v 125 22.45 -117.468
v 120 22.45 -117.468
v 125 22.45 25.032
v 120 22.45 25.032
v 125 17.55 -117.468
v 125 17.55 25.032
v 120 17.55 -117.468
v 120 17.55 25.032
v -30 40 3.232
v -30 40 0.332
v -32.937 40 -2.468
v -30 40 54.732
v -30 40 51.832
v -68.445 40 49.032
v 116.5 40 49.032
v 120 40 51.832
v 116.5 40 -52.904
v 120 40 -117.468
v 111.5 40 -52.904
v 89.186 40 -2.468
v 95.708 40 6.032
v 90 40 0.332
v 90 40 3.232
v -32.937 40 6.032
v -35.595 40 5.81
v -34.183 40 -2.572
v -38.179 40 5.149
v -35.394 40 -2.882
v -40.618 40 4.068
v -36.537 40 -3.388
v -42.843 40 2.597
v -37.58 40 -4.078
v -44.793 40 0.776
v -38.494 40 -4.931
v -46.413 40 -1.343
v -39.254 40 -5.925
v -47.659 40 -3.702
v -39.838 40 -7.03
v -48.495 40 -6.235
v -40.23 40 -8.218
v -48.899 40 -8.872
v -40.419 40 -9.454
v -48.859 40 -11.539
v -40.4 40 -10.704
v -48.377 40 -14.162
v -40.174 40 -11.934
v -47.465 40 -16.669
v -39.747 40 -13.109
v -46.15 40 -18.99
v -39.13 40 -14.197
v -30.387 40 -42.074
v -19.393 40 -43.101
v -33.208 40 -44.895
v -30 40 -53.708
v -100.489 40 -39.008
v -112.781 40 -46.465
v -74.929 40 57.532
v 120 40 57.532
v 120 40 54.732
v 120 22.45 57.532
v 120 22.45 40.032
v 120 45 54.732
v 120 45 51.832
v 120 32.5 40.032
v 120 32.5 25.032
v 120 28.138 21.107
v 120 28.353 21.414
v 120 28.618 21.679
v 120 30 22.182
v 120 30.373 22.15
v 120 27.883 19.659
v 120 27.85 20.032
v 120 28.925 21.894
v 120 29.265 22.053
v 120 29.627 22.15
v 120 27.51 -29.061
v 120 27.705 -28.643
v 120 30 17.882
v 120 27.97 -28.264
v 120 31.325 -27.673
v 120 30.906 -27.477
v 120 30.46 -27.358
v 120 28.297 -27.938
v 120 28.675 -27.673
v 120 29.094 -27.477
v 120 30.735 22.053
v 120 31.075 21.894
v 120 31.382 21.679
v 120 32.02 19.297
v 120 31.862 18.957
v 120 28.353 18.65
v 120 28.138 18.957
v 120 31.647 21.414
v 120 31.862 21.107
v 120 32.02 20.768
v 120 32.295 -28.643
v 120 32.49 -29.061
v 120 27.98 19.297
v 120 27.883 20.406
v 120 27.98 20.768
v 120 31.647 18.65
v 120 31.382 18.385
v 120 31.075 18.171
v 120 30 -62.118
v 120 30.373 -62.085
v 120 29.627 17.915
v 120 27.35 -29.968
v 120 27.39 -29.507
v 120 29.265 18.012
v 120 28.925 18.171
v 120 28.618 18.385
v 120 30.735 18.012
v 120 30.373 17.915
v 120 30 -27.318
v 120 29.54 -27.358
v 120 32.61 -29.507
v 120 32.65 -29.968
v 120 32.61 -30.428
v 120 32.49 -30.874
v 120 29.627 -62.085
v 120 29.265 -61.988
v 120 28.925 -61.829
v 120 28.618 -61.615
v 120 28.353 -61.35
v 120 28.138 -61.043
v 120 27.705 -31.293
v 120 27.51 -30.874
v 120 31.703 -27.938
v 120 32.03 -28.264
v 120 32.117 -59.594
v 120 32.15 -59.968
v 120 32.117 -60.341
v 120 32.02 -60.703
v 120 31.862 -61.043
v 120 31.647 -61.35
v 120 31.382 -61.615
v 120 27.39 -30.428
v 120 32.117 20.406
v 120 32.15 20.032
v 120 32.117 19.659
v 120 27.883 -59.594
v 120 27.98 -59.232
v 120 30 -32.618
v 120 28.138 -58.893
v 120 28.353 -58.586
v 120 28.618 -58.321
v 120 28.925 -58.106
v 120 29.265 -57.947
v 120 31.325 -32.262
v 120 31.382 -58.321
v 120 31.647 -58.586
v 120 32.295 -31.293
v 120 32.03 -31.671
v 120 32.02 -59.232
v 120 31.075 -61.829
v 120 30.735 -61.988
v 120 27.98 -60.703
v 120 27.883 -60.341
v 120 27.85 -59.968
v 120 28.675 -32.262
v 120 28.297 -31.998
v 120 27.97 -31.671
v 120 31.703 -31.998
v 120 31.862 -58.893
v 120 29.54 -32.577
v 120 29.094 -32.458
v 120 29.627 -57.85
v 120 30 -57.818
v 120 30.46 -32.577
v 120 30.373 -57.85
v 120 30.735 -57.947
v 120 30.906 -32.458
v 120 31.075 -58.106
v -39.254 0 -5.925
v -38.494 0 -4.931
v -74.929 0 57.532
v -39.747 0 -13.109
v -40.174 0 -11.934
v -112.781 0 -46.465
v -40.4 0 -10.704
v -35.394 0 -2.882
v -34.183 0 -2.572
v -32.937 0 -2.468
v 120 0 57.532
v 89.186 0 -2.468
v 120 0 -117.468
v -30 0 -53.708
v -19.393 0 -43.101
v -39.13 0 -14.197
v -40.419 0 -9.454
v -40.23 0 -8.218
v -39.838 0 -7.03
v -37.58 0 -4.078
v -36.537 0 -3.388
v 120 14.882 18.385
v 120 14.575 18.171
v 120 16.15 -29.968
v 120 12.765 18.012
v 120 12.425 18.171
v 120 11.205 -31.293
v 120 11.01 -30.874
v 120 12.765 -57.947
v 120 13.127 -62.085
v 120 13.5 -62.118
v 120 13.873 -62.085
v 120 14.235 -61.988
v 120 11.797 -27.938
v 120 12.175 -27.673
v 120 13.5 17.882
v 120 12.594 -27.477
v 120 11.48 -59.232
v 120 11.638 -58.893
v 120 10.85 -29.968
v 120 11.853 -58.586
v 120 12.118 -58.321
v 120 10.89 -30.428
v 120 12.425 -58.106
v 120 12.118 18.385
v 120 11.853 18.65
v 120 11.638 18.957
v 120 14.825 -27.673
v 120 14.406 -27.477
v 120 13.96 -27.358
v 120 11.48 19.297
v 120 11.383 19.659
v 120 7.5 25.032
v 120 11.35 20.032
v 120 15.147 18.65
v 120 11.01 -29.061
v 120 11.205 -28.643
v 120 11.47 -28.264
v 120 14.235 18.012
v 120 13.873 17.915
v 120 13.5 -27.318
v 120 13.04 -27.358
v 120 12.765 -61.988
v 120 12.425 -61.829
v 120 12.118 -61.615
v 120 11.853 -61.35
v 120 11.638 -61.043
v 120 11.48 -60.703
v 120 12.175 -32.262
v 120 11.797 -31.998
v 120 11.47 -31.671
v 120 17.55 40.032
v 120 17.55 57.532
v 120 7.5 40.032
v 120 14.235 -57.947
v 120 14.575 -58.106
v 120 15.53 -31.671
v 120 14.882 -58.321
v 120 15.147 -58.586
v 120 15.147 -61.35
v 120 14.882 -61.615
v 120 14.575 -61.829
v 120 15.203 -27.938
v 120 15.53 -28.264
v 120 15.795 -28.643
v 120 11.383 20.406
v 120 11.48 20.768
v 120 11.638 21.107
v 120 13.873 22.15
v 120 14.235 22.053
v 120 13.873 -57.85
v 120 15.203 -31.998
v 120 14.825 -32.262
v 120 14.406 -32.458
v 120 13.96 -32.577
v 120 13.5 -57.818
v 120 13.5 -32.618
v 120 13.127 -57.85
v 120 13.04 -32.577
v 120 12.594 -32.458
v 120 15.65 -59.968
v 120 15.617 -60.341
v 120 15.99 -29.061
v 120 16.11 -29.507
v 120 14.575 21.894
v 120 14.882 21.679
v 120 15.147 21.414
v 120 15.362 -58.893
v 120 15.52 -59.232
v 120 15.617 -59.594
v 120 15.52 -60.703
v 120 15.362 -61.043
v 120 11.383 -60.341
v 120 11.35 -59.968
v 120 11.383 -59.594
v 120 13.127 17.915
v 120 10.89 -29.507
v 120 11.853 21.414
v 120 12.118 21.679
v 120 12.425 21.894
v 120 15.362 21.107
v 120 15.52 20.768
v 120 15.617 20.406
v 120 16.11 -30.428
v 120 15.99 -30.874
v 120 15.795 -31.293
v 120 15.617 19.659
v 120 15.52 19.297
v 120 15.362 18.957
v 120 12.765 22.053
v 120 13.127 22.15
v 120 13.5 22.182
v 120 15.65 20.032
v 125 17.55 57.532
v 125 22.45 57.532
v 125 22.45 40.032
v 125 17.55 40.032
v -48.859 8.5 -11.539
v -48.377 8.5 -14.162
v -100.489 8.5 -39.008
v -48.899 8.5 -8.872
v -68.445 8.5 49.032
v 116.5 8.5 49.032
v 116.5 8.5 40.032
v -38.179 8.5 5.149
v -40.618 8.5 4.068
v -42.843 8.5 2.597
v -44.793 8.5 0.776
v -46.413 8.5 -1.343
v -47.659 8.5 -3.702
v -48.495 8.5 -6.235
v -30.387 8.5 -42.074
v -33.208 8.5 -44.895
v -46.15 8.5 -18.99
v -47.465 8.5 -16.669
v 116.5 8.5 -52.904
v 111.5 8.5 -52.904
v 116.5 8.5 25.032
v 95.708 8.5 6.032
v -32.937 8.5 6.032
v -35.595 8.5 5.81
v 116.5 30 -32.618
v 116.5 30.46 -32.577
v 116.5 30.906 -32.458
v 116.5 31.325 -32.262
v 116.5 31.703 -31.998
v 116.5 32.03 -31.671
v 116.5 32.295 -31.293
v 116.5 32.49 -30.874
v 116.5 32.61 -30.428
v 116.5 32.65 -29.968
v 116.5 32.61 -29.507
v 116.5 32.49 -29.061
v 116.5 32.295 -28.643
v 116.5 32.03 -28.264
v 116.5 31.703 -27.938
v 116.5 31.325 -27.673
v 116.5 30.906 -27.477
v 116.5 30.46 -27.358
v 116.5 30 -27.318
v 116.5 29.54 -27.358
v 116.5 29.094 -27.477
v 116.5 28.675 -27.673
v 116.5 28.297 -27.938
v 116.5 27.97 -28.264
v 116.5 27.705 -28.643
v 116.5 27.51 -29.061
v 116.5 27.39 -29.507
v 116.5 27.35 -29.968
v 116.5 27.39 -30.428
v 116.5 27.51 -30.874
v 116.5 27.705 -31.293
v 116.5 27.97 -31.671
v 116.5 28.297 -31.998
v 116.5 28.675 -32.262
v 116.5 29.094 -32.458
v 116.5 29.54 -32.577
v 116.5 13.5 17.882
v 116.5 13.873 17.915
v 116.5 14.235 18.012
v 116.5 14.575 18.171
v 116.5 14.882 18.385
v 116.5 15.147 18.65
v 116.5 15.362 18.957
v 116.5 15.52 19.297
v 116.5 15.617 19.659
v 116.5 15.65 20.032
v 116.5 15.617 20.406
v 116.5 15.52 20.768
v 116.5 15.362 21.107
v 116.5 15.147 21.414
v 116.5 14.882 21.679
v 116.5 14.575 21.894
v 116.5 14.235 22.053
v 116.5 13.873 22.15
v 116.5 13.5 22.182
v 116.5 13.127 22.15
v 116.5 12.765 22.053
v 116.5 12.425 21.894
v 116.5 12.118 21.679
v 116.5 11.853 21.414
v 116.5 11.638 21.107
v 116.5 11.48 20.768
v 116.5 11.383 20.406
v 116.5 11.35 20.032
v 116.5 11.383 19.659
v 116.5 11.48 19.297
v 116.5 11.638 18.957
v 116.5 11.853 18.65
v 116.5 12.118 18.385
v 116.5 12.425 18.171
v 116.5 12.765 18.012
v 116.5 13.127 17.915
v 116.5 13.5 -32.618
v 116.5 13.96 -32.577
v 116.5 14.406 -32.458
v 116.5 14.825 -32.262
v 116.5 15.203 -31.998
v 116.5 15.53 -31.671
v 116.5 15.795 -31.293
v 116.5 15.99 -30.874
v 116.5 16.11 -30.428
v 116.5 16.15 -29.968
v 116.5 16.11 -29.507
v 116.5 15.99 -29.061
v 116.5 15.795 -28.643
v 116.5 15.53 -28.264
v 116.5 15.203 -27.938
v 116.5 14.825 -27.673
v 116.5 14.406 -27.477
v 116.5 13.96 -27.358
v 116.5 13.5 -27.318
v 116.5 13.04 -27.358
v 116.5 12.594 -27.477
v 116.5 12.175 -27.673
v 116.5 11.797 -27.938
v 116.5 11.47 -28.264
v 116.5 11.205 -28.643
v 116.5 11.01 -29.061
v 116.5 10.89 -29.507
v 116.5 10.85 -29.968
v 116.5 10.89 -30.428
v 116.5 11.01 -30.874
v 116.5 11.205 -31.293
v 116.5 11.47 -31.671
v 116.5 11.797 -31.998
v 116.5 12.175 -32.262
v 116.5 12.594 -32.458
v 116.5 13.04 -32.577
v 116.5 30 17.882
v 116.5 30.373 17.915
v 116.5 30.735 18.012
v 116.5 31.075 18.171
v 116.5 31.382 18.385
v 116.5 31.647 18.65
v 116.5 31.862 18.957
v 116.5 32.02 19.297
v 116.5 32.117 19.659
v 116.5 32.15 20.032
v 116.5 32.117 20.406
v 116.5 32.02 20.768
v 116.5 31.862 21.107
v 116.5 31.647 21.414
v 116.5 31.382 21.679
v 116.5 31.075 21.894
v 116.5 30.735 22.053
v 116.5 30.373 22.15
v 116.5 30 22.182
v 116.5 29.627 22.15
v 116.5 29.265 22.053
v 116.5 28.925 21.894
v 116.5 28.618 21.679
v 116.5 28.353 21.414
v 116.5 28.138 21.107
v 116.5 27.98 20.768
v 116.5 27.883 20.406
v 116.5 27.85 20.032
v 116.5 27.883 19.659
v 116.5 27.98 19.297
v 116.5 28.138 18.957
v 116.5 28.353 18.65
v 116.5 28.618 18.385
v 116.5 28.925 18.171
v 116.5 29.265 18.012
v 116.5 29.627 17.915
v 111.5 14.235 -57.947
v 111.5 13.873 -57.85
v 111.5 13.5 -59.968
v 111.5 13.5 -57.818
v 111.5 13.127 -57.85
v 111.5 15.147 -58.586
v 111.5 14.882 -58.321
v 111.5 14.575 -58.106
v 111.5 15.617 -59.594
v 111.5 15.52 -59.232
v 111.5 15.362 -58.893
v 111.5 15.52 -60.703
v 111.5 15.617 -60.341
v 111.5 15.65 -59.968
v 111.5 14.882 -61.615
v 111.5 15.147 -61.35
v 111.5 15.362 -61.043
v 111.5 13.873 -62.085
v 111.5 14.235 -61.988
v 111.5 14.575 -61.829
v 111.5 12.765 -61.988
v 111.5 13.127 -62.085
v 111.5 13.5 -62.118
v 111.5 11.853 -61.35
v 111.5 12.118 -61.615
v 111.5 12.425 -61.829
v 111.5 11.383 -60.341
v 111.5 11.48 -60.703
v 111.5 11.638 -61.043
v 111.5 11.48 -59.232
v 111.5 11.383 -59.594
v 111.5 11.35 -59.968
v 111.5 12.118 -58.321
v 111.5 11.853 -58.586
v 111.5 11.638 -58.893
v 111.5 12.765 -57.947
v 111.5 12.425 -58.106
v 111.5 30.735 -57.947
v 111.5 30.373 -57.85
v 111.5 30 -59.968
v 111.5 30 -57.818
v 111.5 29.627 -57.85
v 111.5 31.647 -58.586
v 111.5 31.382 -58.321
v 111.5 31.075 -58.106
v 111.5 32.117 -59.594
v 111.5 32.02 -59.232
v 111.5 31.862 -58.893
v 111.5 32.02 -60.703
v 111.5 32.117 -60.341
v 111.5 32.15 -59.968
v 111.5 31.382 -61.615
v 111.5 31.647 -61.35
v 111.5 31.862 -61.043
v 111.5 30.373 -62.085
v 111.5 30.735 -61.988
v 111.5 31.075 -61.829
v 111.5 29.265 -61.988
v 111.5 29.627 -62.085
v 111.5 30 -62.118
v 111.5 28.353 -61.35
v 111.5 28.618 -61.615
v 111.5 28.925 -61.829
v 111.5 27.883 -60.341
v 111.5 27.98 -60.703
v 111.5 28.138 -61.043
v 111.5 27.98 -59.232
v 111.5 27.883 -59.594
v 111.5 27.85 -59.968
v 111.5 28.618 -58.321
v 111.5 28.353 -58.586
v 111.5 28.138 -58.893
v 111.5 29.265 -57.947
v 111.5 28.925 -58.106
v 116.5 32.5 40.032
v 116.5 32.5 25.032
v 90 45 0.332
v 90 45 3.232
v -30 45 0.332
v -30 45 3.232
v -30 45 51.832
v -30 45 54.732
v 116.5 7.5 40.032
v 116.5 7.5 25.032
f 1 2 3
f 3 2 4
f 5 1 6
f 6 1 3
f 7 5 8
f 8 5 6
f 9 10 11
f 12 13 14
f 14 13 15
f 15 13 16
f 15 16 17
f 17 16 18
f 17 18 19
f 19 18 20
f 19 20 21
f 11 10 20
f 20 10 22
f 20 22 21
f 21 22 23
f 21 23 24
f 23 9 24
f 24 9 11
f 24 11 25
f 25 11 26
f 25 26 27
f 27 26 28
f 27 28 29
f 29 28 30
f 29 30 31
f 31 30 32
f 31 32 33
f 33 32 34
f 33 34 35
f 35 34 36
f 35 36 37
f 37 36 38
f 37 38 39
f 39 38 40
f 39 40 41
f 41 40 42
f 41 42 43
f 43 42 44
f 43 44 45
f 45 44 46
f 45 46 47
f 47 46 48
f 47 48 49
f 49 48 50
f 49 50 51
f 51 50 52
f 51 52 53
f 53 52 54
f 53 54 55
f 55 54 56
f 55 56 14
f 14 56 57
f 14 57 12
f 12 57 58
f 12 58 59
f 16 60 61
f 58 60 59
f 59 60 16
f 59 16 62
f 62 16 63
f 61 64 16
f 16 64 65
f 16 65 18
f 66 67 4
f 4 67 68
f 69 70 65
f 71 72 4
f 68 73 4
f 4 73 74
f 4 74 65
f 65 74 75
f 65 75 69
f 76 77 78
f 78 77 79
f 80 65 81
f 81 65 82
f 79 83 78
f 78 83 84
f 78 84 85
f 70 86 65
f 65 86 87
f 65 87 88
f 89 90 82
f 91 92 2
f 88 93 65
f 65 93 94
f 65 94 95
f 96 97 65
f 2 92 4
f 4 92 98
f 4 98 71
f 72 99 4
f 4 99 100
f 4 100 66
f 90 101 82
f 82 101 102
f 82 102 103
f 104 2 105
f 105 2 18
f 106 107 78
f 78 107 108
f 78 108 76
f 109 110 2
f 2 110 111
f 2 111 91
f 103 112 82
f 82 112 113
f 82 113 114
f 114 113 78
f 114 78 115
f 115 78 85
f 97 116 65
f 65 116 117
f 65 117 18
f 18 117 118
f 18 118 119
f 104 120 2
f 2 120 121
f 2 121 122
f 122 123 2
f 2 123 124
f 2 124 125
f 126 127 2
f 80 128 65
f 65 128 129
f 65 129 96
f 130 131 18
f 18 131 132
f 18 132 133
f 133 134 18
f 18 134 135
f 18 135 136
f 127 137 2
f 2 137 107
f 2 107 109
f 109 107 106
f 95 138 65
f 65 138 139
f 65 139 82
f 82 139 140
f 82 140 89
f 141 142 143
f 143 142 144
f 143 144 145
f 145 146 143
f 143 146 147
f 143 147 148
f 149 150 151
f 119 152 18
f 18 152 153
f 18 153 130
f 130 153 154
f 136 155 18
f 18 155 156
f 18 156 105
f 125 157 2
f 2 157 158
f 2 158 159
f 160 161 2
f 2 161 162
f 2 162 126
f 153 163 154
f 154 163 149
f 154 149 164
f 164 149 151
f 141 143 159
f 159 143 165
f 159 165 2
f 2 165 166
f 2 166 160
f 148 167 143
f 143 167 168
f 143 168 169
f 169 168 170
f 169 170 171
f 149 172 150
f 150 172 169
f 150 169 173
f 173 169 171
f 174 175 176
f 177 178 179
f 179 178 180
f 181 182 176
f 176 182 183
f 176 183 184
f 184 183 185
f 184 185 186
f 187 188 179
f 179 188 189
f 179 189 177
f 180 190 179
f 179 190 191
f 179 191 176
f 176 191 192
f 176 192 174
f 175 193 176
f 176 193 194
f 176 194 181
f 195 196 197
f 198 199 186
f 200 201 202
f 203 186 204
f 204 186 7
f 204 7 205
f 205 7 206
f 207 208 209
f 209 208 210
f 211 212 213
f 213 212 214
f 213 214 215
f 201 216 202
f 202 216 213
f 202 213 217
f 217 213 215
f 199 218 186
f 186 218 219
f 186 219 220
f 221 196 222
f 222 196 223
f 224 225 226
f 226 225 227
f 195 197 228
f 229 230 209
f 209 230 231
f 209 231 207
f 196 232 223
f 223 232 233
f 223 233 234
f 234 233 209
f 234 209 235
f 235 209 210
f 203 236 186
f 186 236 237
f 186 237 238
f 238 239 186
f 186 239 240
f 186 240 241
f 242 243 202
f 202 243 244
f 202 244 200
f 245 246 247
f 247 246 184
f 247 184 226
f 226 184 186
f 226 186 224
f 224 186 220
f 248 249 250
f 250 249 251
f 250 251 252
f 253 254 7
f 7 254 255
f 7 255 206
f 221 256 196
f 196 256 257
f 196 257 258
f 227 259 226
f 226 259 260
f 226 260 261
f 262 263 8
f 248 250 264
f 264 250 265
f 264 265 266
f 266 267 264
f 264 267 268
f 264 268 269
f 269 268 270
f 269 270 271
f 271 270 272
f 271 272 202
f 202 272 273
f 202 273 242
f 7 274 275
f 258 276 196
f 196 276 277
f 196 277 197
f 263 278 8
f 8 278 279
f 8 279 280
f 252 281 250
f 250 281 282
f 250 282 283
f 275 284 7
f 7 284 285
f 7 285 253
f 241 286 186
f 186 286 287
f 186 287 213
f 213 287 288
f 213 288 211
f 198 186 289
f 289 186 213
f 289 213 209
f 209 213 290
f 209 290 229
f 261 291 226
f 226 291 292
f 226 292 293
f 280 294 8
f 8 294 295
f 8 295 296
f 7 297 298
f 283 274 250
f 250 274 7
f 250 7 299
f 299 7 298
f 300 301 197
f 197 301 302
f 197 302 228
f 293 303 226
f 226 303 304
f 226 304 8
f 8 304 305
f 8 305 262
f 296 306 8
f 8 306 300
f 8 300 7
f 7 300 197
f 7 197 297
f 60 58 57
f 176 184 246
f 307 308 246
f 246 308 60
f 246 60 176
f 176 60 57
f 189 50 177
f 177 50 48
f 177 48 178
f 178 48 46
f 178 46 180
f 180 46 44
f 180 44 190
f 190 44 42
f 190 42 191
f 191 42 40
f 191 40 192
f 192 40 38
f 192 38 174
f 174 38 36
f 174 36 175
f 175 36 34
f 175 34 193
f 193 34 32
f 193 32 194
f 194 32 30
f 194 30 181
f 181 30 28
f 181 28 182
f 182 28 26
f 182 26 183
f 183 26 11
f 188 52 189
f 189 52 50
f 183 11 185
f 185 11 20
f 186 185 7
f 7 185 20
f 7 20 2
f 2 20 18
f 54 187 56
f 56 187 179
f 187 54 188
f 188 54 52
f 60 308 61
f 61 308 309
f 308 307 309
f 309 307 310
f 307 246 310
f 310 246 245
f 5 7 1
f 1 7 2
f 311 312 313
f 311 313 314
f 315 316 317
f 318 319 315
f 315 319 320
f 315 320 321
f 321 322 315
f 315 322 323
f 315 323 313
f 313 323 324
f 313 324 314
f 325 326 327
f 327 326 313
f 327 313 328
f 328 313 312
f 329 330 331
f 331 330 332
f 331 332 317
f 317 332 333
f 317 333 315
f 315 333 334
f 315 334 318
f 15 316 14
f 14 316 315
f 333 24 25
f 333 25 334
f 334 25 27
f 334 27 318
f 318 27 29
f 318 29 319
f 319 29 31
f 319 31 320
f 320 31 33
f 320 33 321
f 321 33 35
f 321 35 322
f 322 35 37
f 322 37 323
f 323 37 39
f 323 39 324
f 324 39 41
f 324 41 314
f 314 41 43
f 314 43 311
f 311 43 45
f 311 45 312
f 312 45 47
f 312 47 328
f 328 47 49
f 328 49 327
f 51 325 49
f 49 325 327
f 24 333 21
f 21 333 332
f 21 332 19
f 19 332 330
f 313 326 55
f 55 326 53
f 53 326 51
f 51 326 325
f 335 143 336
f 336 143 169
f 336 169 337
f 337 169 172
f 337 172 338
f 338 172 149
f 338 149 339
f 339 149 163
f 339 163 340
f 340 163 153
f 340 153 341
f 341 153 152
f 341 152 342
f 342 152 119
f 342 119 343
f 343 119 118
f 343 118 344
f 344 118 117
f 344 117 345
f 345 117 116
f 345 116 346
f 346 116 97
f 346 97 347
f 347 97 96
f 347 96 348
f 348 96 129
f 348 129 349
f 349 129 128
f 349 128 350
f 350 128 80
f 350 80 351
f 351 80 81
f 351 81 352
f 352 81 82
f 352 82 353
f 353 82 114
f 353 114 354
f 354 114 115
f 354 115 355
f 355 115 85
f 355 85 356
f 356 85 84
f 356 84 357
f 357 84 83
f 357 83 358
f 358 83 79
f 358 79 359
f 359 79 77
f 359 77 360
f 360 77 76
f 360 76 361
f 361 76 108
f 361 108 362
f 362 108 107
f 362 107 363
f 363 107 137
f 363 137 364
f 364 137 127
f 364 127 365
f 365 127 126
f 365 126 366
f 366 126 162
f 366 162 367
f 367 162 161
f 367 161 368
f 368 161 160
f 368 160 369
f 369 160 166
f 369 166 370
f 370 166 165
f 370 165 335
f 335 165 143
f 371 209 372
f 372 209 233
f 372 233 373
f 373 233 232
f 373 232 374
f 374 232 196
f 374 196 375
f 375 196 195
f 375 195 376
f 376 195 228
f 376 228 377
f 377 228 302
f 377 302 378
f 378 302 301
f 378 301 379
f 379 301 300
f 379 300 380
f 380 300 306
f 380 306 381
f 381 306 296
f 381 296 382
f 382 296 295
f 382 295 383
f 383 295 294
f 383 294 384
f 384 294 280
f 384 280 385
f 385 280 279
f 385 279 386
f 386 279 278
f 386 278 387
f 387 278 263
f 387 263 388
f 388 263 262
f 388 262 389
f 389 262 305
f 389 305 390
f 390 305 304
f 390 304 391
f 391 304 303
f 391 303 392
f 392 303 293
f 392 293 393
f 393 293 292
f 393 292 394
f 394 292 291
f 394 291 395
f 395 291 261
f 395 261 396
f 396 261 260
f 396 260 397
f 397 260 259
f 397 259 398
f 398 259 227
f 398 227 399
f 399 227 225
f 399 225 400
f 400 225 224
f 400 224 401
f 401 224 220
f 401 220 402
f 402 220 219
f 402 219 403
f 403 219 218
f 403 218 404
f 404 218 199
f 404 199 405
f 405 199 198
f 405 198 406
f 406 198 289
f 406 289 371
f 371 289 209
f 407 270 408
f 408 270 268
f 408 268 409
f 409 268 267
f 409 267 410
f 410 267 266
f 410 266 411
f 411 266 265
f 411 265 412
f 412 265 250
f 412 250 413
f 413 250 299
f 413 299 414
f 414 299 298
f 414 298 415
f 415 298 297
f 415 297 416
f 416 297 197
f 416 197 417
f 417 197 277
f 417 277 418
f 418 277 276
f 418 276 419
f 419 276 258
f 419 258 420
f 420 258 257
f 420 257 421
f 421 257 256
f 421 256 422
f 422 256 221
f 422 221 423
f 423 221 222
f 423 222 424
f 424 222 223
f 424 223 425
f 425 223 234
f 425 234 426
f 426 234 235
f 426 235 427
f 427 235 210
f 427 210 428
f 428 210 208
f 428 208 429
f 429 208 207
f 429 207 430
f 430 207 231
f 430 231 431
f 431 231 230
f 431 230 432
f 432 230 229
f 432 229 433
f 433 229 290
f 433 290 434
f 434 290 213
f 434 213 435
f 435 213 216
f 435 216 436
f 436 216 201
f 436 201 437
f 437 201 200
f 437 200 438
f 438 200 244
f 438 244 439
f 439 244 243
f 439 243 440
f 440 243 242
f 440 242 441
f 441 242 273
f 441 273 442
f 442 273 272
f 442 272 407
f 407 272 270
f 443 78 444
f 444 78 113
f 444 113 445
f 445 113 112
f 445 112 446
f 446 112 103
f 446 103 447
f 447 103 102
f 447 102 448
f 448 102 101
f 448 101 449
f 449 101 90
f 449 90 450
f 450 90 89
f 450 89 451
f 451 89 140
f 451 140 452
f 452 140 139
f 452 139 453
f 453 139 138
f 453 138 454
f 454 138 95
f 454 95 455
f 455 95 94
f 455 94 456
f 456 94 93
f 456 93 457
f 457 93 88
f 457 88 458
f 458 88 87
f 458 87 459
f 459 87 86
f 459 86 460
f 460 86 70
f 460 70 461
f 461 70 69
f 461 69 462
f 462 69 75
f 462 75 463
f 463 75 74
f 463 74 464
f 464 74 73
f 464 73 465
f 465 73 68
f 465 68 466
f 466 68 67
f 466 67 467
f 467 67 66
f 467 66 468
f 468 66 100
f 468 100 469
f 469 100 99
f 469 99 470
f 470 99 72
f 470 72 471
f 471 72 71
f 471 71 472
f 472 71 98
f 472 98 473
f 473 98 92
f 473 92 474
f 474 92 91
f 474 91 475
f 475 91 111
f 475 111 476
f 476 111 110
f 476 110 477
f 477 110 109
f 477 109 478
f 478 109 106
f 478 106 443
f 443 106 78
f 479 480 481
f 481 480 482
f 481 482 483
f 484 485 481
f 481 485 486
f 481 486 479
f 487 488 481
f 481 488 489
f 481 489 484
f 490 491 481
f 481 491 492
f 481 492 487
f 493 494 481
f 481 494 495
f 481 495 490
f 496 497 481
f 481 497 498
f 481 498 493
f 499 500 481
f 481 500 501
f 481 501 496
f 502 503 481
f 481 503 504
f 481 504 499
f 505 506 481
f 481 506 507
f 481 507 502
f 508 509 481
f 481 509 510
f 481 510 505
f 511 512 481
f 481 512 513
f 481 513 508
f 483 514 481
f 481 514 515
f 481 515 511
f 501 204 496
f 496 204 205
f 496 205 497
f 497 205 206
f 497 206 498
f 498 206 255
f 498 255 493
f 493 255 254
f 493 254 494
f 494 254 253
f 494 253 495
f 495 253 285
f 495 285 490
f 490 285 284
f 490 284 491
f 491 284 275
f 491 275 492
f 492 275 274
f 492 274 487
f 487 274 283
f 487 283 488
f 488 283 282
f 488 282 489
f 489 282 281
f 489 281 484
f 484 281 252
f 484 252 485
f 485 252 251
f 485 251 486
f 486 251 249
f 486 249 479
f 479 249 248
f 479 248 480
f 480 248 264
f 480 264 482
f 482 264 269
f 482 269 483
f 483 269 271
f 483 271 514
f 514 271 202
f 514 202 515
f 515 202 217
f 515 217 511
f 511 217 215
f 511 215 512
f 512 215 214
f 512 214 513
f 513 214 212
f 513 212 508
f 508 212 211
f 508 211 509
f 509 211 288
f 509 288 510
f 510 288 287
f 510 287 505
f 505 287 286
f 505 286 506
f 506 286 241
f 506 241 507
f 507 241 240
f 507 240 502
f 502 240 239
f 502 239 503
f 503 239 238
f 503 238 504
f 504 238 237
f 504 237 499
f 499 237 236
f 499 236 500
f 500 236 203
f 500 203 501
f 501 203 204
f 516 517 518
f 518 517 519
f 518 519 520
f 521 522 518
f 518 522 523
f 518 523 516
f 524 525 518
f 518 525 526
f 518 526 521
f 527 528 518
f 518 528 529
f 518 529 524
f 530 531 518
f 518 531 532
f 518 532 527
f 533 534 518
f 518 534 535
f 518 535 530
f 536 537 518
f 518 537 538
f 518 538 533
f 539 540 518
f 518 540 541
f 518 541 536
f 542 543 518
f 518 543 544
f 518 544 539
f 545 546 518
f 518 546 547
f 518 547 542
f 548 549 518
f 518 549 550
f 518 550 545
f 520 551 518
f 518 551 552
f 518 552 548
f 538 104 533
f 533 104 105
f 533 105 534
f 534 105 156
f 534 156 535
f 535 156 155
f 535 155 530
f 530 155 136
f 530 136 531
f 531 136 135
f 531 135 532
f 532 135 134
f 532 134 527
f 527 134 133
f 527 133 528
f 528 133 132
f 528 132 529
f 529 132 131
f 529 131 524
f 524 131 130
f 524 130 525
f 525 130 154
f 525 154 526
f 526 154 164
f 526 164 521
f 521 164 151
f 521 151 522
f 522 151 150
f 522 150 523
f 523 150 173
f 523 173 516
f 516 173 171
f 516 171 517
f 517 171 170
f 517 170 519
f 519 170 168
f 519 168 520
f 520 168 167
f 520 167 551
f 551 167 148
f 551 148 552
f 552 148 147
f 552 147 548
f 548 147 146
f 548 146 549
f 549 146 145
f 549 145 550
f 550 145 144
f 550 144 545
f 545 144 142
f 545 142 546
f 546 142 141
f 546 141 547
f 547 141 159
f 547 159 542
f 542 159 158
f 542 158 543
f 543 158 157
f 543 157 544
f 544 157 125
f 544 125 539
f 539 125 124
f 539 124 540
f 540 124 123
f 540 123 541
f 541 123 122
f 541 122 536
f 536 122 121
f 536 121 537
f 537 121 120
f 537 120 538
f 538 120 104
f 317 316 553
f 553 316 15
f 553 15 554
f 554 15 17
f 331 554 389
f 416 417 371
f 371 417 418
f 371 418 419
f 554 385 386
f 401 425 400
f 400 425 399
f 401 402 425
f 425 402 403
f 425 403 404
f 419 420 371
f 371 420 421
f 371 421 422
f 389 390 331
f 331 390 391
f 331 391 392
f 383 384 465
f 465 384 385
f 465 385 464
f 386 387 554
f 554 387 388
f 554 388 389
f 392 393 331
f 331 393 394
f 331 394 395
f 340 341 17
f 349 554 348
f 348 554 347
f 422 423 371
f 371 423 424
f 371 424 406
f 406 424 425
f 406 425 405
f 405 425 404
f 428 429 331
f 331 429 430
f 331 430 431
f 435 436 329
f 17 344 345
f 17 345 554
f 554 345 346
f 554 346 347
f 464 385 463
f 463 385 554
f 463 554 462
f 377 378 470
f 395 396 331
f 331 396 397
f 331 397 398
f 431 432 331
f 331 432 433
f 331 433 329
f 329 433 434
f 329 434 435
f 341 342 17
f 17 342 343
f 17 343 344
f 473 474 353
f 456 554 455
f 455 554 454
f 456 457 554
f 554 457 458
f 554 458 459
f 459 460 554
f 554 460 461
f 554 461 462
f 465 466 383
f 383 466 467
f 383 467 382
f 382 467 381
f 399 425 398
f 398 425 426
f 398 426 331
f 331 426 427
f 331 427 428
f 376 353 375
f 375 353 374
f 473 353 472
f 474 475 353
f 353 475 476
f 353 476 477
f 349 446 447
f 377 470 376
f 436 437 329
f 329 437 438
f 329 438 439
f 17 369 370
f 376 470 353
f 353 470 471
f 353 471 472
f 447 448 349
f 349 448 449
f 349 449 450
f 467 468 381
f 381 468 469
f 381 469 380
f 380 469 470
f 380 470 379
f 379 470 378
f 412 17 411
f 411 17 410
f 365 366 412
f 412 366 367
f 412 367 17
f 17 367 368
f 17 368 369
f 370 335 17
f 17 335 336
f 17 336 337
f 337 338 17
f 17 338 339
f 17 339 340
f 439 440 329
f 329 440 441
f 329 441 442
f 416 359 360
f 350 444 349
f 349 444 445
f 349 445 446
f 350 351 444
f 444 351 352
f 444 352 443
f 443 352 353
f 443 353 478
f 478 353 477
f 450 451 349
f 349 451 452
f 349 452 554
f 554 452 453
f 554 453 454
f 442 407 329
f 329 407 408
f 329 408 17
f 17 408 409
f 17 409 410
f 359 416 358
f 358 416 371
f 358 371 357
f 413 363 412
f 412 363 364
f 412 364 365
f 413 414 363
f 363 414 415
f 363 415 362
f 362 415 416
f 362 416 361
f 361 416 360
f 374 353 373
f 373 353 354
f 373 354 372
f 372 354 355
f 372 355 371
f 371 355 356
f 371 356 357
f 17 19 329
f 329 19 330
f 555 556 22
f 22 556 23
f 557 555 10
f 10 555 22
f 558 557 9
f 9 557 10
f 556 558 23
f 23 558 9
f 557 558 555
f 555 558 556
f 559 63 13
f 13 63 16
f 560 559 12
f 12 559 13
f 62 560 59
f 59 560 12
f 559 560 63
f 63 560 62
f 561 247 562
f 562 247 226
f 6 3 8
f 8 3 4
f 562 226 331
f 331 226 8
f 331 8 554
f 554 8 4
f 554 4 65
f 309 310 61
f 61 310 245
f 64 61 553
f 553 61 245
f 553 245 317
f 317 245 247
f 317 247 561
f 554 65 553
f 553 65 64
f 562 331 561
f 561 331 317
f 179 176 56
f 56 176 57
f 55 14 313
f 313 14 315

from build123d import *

# Parameters (mm, degrees)
SKETCH1_W               = 240
SKETCH1_H               = 175
BOSS_EXTRUDE1_DEPTH     = 40
CUT_EXTRUDE1_DEPTH      = 173.622771337
CUT_EXTRUDE1_DEPTH_BACK = 40
SKETCH3_W               = 5
SKETCH3_H               = 4.9
BOSS_EXTRUDE2_DEPTH     = 175
SHELL1_START            = 8.5
SHELL1_DEPTH            = 31.5
SKETCH4_R               = 2.65
SKETCH4_R_2             = 2.15
CUT_EXTRUDE2_DEPTH      = 8.5
CUT_EXTRUDE3_START      = -31.5
SKETCH5_W               = 5
SKETCH5_H               = 101.936090041
CUT_EXTRUDE3_DEPTH      = 31.5
SKETCH6_W               = 150
SKETCH6_H               = 2.9
SKETCH6_W_2             = 120
BOSS_EXTRUDE3_DEPTH     = 5
CUT_EXTRUDE4_REACH      = 277.406
SKETCH8_W               = 15
SKETCH8_H               = 25
BOSS_EXTRUDE4_DEPTH     = 10
CUT_EXTRUDE5_START      = -50
CUT_EXTRUDE5_DEPTH      = 50
BOSS_EXTRUDE5_DEPTH     = 31.5


# Read off the part's stored shape, not the designer's step: Shell1
with BuildPart() as part:
    # Sketch1 → Boss-Extrude1 (new body)
    with BuildSketch(Plane(origin=(0, 0, 0), x_dir=(1, 0, 0), z_dir=(0, 1, 0))):
        with Locations((0, 29.967532468)):
            Rectangle(SKETCH1_W, SKETCH1_H)
    extrude(amount=BOSS_EXTRUDE1_DEPTH)

    # Sketch2 → Cut-Extrude1 (cut, two sides: drawn at the far end of the back side and taken through both)
    with BuildSketch(Plane(origin=(0, 40, 0), x_dir=(1, 0, 0), z_dir=(0, 1, 0)).offset(-CUT_EXTRUDE1_DEPTH_BACK)):
        with BuildLine():
            Line((724.053869611, -57.532467532), (120, -57.532467532))
            Line((120, -57.532467532), (-82.377784234, -57.532467532))
            Line((-82.377784234, -57.532467532), (-120, 45.833720754))
            Line((-120, 45.833720754), (-30, 53.707700471))
            Line((-30, 53.707700471), (-19.393398282, 43.101098754))
            Line((-19.393398282, 43.101098754), (-39.130306901, 14.196870029))
            ThreePointArc((-39.130306901, 14.196870029), (-39.568663615, 6.465392529), (-32.936543603, 2.467532468))
            Line((-32.936543603, 2.467532468), (89.18584287, 2.467532468))
            Line((89.18584287, 2.467532468), (120, 117.467532468))
            Line((120, 117.467532468), (276.340645723, 700.938765595))
            Line((276.340645723, 700.938765595), (-764.036200619, 86.821246577))
            Line((-764.036200619, 86.821246577), (-316.322976731, -671.64998655))
            Line((-316.322976731, -671.64998655), (724.053869611, -57.532467532))
        make_face()
    extrude(amount=CUT_EXTRUDE1_DEPTH + CUT_EXTRUDE1_DEPTH_BACK, mode=Mode.SUBTRACT)

    # Sketch3 → Boss-Extrude2 (add)
    with BuildSketch(Plane.XY.offset(57.532467532)):
        with Locations((122.5, 20)):
            Rectangle(SKETCH3_W, SKETCH3_H)
    extrude(amount=-BOSS_EXTRUDE2_DEPTH)

    # Shell1 outline → Shell1 (cut)
    with BuildSketch(Plane(origin=(0, 0, 0), x_dir=(1, 0, 0), z_dir=(0, 1, 0)).offset(SHELL1_START)):
        with BuildLine():
            Line((111.5, -49.032467532), (111.5, 52.903622509))
            Line((111.5, 52.903622509), (95.708122268, -6.032467532))
            Line((95.708122268, -6.032467532), (-32.936543603, -6.032467532))
            ThreePointArc((-32.936543603, -6.032467532), (-47.085066295, 2.4963006), (-46.149905305, 18.990119265))
            Line((-46.149905305, 18.990119265), (-30.387255785, 42.074140976))
            Line((-30.387255785, 42.074140976), (-33.207708529, 44.89459372))
            Line((-33.207708529, 44.89459372), (-108.223913428, 38.331526211))
            Line((-108.223913428, 38.331526211), (-76.426020159, -49.032467532))
            Line((-76.426020159, -49.032467532), (111.5, -49.032467532))
        make_face()
    extrude(amount=SHELL1_DEPTH, mode=Mode.SUBTRACT)

    # Sketch4 → Cut-Extrude2 (cut)
    with BuildSketch(Plane(origin=(120, 0, 0), x_dir=(0, 0, -1), z_dir=(1, 0, 0))):
        with Locations((29.967532468, 30)):
            Circle(SKETCH4_R)
        with Locations((59.967532468, 30)):
            Circle(SKETCH4_R_2)
        with Locations((-20.032467532, 30)):
            Circle(SKETCH4_R_2)
        with Locations((29.967532468, 13.5)):
            Circle(SKETCH4_R)
        with Locations((59.967532468, 13.5)):
            Circle(SKETCH4_R_2)
        with Locations((-20.032467532, 13.5)):
            Circle(SKETCH4_R_2)
    extrude(amount=-CUT_EXTRUDE2_DEPTH, mode=Mode.SUBTRACT)

    # Sketch5 → Cut-Extrude3 (cut)
    with BuildSketch(Plane(origin=(0, 40, 0), x_dir=(1, 0, 0), z_dir=(0, 1, 0)).offset(CUT_EXTRUDE3_START)):
        with Locations((114, 1.935577488)):
            Rectangle(SKETCH5_W, SKETCH5_H)
    extrude(amount=CUT_EXTRUDE3_DEPTH, mode=Mode.SUBTRACT)

    # Sketch6 → Boss-Extrude3 (add)
    with BuildSketch(Plane(origin=(0, 40, 0), x_dir=(1, 0, 0), z_dir=(0, 1, 0))):
        with Locations((45, -53.282467532)):
            Rectangle(SKETCH6_W, SKETCH6_H)
        with Locations((30, -1.782467532)):
            Rectangle(SKETCH6_W_2, SKETCH6_H)
    extrude(amount=BOSS_EXTRUDE3_DEPTH)

    # Cut-Extrude4: up to this face of the body (flat: up to its plane)
    cut_extrude4_end = Plane(part.part.faces().sort_by_distance((116.5, 24.308295021, -1.744734026))[0])
    # Sketch8 → Cut-Extrude4 (cut, up to the picked face)
    with BuildSketch(Plane(origin=(125, 0, 0), x_dir=(0, 0, -1), z_dir=(1, 0, 0)), mode=Mode.PRIVATE) as cut_extrude4_sk1:
        with Locations((-32.532467532, 20)):
            Rectangle(SKETCH8_W, SKETCH8_H)
    cut_extrude4_tool1 = split(extrude(cut_extrude4_sk1.sketch, amount=-CUT_EXTRUDE4_REACH, mode=Mode.PRIVATE), bisect_by=cut_extrude4_end, keep=Keep.BOTH, mode=Mode.PRIVATE)
    add(cut_extrude4_tool1.solids().sort_by(Axis((125, 20, 32.532468), (-1, 0, 0)))[0], mode=Mode.SUBTRACT)


with BuildPart() as body_2:
    # Sketch9 → Boss-Extrude4 (new body)
    with BuildSketch(Plane(origin=(0, 40, 0), x_dir=(1, 0, 0), z_dir=(0, 1, 0))):
        with BuildLine():
            Line((120, -57.532467532), (120, 117.467532468))
            Line((120, 117.467532468), (89.18584287, 2.467532468))
            Line((89.18584287, 2.467532468), (-32.936543603, 2.467532468))
            ThreePointArc((-32.936543603, 2.467532468), (-39.568663615, 6.465392529), (-39.130306901, 14.196870029))
            Line((-39.130306901, 14.196870029), (-19.393398282, 43.101098754))
            Line((-19.393398282, 43.101098754), (-30, 53.707700471))
            Line((-30, 53.707700471), (-120, 45.833720754))
            Line((-120, 45.833720754), (-82.377784234, -57.532467532))
            Line((-82.377784234, -57.532467532), (120, -57.532467532))
        make_face()
    extrude(amount=BOSS_EXTRUDE4_DEPTH)


with BuildPart() as cut_extrude5_tool:
    # Sketch10 → Cut-Extrude5 (new body)
    with BuildSketch(Plane(origin=(0, 50, 0), x_dir=(1, 0, 0), z_dir=(0, 1, 0)).offset(CUT_EXTRUDE5_START)):
        Polygon((-120, 45.833720754), (-112.780643506, 46.465332605), (-74.928539827, -57.532467532), (-82.377784234, -57.532467532), align=None)
    extrude(amount=CUT_EXTRUDE5_DEPTH)


with BuildPart() as part_1:
    add(part.part)

    # Cut-Extrude5: cut by cut_extrude5_tool
    add(cut_extrude5_tool.part, mode=Mode.SUBTRACT)

    # Sketch11 → Boss-Extrude5 (add)
    with BuildSketch(Plane(origin=(0, 40, 0), x_dir=(1, 0, 0), z_dir=(0, 1, 0))):
        Polygon((-108.223913428, 38.331526211), (-100.488888614, 39.008253194), (-68.444686866, -49.032467532), (-76.426020159, -49.032467532), align=None)
    extrude(amount=-BOSS_EXTRUDE5_DEPTH)


with BuildPart() as body_2_1:
    add(body_2.part)

    # Cut-Extrude5: cut by cut_extrude5_tool
    add(cut_extrude5_tool.part, mode=Mode.SUBTRACT)


solid = part_1.part
